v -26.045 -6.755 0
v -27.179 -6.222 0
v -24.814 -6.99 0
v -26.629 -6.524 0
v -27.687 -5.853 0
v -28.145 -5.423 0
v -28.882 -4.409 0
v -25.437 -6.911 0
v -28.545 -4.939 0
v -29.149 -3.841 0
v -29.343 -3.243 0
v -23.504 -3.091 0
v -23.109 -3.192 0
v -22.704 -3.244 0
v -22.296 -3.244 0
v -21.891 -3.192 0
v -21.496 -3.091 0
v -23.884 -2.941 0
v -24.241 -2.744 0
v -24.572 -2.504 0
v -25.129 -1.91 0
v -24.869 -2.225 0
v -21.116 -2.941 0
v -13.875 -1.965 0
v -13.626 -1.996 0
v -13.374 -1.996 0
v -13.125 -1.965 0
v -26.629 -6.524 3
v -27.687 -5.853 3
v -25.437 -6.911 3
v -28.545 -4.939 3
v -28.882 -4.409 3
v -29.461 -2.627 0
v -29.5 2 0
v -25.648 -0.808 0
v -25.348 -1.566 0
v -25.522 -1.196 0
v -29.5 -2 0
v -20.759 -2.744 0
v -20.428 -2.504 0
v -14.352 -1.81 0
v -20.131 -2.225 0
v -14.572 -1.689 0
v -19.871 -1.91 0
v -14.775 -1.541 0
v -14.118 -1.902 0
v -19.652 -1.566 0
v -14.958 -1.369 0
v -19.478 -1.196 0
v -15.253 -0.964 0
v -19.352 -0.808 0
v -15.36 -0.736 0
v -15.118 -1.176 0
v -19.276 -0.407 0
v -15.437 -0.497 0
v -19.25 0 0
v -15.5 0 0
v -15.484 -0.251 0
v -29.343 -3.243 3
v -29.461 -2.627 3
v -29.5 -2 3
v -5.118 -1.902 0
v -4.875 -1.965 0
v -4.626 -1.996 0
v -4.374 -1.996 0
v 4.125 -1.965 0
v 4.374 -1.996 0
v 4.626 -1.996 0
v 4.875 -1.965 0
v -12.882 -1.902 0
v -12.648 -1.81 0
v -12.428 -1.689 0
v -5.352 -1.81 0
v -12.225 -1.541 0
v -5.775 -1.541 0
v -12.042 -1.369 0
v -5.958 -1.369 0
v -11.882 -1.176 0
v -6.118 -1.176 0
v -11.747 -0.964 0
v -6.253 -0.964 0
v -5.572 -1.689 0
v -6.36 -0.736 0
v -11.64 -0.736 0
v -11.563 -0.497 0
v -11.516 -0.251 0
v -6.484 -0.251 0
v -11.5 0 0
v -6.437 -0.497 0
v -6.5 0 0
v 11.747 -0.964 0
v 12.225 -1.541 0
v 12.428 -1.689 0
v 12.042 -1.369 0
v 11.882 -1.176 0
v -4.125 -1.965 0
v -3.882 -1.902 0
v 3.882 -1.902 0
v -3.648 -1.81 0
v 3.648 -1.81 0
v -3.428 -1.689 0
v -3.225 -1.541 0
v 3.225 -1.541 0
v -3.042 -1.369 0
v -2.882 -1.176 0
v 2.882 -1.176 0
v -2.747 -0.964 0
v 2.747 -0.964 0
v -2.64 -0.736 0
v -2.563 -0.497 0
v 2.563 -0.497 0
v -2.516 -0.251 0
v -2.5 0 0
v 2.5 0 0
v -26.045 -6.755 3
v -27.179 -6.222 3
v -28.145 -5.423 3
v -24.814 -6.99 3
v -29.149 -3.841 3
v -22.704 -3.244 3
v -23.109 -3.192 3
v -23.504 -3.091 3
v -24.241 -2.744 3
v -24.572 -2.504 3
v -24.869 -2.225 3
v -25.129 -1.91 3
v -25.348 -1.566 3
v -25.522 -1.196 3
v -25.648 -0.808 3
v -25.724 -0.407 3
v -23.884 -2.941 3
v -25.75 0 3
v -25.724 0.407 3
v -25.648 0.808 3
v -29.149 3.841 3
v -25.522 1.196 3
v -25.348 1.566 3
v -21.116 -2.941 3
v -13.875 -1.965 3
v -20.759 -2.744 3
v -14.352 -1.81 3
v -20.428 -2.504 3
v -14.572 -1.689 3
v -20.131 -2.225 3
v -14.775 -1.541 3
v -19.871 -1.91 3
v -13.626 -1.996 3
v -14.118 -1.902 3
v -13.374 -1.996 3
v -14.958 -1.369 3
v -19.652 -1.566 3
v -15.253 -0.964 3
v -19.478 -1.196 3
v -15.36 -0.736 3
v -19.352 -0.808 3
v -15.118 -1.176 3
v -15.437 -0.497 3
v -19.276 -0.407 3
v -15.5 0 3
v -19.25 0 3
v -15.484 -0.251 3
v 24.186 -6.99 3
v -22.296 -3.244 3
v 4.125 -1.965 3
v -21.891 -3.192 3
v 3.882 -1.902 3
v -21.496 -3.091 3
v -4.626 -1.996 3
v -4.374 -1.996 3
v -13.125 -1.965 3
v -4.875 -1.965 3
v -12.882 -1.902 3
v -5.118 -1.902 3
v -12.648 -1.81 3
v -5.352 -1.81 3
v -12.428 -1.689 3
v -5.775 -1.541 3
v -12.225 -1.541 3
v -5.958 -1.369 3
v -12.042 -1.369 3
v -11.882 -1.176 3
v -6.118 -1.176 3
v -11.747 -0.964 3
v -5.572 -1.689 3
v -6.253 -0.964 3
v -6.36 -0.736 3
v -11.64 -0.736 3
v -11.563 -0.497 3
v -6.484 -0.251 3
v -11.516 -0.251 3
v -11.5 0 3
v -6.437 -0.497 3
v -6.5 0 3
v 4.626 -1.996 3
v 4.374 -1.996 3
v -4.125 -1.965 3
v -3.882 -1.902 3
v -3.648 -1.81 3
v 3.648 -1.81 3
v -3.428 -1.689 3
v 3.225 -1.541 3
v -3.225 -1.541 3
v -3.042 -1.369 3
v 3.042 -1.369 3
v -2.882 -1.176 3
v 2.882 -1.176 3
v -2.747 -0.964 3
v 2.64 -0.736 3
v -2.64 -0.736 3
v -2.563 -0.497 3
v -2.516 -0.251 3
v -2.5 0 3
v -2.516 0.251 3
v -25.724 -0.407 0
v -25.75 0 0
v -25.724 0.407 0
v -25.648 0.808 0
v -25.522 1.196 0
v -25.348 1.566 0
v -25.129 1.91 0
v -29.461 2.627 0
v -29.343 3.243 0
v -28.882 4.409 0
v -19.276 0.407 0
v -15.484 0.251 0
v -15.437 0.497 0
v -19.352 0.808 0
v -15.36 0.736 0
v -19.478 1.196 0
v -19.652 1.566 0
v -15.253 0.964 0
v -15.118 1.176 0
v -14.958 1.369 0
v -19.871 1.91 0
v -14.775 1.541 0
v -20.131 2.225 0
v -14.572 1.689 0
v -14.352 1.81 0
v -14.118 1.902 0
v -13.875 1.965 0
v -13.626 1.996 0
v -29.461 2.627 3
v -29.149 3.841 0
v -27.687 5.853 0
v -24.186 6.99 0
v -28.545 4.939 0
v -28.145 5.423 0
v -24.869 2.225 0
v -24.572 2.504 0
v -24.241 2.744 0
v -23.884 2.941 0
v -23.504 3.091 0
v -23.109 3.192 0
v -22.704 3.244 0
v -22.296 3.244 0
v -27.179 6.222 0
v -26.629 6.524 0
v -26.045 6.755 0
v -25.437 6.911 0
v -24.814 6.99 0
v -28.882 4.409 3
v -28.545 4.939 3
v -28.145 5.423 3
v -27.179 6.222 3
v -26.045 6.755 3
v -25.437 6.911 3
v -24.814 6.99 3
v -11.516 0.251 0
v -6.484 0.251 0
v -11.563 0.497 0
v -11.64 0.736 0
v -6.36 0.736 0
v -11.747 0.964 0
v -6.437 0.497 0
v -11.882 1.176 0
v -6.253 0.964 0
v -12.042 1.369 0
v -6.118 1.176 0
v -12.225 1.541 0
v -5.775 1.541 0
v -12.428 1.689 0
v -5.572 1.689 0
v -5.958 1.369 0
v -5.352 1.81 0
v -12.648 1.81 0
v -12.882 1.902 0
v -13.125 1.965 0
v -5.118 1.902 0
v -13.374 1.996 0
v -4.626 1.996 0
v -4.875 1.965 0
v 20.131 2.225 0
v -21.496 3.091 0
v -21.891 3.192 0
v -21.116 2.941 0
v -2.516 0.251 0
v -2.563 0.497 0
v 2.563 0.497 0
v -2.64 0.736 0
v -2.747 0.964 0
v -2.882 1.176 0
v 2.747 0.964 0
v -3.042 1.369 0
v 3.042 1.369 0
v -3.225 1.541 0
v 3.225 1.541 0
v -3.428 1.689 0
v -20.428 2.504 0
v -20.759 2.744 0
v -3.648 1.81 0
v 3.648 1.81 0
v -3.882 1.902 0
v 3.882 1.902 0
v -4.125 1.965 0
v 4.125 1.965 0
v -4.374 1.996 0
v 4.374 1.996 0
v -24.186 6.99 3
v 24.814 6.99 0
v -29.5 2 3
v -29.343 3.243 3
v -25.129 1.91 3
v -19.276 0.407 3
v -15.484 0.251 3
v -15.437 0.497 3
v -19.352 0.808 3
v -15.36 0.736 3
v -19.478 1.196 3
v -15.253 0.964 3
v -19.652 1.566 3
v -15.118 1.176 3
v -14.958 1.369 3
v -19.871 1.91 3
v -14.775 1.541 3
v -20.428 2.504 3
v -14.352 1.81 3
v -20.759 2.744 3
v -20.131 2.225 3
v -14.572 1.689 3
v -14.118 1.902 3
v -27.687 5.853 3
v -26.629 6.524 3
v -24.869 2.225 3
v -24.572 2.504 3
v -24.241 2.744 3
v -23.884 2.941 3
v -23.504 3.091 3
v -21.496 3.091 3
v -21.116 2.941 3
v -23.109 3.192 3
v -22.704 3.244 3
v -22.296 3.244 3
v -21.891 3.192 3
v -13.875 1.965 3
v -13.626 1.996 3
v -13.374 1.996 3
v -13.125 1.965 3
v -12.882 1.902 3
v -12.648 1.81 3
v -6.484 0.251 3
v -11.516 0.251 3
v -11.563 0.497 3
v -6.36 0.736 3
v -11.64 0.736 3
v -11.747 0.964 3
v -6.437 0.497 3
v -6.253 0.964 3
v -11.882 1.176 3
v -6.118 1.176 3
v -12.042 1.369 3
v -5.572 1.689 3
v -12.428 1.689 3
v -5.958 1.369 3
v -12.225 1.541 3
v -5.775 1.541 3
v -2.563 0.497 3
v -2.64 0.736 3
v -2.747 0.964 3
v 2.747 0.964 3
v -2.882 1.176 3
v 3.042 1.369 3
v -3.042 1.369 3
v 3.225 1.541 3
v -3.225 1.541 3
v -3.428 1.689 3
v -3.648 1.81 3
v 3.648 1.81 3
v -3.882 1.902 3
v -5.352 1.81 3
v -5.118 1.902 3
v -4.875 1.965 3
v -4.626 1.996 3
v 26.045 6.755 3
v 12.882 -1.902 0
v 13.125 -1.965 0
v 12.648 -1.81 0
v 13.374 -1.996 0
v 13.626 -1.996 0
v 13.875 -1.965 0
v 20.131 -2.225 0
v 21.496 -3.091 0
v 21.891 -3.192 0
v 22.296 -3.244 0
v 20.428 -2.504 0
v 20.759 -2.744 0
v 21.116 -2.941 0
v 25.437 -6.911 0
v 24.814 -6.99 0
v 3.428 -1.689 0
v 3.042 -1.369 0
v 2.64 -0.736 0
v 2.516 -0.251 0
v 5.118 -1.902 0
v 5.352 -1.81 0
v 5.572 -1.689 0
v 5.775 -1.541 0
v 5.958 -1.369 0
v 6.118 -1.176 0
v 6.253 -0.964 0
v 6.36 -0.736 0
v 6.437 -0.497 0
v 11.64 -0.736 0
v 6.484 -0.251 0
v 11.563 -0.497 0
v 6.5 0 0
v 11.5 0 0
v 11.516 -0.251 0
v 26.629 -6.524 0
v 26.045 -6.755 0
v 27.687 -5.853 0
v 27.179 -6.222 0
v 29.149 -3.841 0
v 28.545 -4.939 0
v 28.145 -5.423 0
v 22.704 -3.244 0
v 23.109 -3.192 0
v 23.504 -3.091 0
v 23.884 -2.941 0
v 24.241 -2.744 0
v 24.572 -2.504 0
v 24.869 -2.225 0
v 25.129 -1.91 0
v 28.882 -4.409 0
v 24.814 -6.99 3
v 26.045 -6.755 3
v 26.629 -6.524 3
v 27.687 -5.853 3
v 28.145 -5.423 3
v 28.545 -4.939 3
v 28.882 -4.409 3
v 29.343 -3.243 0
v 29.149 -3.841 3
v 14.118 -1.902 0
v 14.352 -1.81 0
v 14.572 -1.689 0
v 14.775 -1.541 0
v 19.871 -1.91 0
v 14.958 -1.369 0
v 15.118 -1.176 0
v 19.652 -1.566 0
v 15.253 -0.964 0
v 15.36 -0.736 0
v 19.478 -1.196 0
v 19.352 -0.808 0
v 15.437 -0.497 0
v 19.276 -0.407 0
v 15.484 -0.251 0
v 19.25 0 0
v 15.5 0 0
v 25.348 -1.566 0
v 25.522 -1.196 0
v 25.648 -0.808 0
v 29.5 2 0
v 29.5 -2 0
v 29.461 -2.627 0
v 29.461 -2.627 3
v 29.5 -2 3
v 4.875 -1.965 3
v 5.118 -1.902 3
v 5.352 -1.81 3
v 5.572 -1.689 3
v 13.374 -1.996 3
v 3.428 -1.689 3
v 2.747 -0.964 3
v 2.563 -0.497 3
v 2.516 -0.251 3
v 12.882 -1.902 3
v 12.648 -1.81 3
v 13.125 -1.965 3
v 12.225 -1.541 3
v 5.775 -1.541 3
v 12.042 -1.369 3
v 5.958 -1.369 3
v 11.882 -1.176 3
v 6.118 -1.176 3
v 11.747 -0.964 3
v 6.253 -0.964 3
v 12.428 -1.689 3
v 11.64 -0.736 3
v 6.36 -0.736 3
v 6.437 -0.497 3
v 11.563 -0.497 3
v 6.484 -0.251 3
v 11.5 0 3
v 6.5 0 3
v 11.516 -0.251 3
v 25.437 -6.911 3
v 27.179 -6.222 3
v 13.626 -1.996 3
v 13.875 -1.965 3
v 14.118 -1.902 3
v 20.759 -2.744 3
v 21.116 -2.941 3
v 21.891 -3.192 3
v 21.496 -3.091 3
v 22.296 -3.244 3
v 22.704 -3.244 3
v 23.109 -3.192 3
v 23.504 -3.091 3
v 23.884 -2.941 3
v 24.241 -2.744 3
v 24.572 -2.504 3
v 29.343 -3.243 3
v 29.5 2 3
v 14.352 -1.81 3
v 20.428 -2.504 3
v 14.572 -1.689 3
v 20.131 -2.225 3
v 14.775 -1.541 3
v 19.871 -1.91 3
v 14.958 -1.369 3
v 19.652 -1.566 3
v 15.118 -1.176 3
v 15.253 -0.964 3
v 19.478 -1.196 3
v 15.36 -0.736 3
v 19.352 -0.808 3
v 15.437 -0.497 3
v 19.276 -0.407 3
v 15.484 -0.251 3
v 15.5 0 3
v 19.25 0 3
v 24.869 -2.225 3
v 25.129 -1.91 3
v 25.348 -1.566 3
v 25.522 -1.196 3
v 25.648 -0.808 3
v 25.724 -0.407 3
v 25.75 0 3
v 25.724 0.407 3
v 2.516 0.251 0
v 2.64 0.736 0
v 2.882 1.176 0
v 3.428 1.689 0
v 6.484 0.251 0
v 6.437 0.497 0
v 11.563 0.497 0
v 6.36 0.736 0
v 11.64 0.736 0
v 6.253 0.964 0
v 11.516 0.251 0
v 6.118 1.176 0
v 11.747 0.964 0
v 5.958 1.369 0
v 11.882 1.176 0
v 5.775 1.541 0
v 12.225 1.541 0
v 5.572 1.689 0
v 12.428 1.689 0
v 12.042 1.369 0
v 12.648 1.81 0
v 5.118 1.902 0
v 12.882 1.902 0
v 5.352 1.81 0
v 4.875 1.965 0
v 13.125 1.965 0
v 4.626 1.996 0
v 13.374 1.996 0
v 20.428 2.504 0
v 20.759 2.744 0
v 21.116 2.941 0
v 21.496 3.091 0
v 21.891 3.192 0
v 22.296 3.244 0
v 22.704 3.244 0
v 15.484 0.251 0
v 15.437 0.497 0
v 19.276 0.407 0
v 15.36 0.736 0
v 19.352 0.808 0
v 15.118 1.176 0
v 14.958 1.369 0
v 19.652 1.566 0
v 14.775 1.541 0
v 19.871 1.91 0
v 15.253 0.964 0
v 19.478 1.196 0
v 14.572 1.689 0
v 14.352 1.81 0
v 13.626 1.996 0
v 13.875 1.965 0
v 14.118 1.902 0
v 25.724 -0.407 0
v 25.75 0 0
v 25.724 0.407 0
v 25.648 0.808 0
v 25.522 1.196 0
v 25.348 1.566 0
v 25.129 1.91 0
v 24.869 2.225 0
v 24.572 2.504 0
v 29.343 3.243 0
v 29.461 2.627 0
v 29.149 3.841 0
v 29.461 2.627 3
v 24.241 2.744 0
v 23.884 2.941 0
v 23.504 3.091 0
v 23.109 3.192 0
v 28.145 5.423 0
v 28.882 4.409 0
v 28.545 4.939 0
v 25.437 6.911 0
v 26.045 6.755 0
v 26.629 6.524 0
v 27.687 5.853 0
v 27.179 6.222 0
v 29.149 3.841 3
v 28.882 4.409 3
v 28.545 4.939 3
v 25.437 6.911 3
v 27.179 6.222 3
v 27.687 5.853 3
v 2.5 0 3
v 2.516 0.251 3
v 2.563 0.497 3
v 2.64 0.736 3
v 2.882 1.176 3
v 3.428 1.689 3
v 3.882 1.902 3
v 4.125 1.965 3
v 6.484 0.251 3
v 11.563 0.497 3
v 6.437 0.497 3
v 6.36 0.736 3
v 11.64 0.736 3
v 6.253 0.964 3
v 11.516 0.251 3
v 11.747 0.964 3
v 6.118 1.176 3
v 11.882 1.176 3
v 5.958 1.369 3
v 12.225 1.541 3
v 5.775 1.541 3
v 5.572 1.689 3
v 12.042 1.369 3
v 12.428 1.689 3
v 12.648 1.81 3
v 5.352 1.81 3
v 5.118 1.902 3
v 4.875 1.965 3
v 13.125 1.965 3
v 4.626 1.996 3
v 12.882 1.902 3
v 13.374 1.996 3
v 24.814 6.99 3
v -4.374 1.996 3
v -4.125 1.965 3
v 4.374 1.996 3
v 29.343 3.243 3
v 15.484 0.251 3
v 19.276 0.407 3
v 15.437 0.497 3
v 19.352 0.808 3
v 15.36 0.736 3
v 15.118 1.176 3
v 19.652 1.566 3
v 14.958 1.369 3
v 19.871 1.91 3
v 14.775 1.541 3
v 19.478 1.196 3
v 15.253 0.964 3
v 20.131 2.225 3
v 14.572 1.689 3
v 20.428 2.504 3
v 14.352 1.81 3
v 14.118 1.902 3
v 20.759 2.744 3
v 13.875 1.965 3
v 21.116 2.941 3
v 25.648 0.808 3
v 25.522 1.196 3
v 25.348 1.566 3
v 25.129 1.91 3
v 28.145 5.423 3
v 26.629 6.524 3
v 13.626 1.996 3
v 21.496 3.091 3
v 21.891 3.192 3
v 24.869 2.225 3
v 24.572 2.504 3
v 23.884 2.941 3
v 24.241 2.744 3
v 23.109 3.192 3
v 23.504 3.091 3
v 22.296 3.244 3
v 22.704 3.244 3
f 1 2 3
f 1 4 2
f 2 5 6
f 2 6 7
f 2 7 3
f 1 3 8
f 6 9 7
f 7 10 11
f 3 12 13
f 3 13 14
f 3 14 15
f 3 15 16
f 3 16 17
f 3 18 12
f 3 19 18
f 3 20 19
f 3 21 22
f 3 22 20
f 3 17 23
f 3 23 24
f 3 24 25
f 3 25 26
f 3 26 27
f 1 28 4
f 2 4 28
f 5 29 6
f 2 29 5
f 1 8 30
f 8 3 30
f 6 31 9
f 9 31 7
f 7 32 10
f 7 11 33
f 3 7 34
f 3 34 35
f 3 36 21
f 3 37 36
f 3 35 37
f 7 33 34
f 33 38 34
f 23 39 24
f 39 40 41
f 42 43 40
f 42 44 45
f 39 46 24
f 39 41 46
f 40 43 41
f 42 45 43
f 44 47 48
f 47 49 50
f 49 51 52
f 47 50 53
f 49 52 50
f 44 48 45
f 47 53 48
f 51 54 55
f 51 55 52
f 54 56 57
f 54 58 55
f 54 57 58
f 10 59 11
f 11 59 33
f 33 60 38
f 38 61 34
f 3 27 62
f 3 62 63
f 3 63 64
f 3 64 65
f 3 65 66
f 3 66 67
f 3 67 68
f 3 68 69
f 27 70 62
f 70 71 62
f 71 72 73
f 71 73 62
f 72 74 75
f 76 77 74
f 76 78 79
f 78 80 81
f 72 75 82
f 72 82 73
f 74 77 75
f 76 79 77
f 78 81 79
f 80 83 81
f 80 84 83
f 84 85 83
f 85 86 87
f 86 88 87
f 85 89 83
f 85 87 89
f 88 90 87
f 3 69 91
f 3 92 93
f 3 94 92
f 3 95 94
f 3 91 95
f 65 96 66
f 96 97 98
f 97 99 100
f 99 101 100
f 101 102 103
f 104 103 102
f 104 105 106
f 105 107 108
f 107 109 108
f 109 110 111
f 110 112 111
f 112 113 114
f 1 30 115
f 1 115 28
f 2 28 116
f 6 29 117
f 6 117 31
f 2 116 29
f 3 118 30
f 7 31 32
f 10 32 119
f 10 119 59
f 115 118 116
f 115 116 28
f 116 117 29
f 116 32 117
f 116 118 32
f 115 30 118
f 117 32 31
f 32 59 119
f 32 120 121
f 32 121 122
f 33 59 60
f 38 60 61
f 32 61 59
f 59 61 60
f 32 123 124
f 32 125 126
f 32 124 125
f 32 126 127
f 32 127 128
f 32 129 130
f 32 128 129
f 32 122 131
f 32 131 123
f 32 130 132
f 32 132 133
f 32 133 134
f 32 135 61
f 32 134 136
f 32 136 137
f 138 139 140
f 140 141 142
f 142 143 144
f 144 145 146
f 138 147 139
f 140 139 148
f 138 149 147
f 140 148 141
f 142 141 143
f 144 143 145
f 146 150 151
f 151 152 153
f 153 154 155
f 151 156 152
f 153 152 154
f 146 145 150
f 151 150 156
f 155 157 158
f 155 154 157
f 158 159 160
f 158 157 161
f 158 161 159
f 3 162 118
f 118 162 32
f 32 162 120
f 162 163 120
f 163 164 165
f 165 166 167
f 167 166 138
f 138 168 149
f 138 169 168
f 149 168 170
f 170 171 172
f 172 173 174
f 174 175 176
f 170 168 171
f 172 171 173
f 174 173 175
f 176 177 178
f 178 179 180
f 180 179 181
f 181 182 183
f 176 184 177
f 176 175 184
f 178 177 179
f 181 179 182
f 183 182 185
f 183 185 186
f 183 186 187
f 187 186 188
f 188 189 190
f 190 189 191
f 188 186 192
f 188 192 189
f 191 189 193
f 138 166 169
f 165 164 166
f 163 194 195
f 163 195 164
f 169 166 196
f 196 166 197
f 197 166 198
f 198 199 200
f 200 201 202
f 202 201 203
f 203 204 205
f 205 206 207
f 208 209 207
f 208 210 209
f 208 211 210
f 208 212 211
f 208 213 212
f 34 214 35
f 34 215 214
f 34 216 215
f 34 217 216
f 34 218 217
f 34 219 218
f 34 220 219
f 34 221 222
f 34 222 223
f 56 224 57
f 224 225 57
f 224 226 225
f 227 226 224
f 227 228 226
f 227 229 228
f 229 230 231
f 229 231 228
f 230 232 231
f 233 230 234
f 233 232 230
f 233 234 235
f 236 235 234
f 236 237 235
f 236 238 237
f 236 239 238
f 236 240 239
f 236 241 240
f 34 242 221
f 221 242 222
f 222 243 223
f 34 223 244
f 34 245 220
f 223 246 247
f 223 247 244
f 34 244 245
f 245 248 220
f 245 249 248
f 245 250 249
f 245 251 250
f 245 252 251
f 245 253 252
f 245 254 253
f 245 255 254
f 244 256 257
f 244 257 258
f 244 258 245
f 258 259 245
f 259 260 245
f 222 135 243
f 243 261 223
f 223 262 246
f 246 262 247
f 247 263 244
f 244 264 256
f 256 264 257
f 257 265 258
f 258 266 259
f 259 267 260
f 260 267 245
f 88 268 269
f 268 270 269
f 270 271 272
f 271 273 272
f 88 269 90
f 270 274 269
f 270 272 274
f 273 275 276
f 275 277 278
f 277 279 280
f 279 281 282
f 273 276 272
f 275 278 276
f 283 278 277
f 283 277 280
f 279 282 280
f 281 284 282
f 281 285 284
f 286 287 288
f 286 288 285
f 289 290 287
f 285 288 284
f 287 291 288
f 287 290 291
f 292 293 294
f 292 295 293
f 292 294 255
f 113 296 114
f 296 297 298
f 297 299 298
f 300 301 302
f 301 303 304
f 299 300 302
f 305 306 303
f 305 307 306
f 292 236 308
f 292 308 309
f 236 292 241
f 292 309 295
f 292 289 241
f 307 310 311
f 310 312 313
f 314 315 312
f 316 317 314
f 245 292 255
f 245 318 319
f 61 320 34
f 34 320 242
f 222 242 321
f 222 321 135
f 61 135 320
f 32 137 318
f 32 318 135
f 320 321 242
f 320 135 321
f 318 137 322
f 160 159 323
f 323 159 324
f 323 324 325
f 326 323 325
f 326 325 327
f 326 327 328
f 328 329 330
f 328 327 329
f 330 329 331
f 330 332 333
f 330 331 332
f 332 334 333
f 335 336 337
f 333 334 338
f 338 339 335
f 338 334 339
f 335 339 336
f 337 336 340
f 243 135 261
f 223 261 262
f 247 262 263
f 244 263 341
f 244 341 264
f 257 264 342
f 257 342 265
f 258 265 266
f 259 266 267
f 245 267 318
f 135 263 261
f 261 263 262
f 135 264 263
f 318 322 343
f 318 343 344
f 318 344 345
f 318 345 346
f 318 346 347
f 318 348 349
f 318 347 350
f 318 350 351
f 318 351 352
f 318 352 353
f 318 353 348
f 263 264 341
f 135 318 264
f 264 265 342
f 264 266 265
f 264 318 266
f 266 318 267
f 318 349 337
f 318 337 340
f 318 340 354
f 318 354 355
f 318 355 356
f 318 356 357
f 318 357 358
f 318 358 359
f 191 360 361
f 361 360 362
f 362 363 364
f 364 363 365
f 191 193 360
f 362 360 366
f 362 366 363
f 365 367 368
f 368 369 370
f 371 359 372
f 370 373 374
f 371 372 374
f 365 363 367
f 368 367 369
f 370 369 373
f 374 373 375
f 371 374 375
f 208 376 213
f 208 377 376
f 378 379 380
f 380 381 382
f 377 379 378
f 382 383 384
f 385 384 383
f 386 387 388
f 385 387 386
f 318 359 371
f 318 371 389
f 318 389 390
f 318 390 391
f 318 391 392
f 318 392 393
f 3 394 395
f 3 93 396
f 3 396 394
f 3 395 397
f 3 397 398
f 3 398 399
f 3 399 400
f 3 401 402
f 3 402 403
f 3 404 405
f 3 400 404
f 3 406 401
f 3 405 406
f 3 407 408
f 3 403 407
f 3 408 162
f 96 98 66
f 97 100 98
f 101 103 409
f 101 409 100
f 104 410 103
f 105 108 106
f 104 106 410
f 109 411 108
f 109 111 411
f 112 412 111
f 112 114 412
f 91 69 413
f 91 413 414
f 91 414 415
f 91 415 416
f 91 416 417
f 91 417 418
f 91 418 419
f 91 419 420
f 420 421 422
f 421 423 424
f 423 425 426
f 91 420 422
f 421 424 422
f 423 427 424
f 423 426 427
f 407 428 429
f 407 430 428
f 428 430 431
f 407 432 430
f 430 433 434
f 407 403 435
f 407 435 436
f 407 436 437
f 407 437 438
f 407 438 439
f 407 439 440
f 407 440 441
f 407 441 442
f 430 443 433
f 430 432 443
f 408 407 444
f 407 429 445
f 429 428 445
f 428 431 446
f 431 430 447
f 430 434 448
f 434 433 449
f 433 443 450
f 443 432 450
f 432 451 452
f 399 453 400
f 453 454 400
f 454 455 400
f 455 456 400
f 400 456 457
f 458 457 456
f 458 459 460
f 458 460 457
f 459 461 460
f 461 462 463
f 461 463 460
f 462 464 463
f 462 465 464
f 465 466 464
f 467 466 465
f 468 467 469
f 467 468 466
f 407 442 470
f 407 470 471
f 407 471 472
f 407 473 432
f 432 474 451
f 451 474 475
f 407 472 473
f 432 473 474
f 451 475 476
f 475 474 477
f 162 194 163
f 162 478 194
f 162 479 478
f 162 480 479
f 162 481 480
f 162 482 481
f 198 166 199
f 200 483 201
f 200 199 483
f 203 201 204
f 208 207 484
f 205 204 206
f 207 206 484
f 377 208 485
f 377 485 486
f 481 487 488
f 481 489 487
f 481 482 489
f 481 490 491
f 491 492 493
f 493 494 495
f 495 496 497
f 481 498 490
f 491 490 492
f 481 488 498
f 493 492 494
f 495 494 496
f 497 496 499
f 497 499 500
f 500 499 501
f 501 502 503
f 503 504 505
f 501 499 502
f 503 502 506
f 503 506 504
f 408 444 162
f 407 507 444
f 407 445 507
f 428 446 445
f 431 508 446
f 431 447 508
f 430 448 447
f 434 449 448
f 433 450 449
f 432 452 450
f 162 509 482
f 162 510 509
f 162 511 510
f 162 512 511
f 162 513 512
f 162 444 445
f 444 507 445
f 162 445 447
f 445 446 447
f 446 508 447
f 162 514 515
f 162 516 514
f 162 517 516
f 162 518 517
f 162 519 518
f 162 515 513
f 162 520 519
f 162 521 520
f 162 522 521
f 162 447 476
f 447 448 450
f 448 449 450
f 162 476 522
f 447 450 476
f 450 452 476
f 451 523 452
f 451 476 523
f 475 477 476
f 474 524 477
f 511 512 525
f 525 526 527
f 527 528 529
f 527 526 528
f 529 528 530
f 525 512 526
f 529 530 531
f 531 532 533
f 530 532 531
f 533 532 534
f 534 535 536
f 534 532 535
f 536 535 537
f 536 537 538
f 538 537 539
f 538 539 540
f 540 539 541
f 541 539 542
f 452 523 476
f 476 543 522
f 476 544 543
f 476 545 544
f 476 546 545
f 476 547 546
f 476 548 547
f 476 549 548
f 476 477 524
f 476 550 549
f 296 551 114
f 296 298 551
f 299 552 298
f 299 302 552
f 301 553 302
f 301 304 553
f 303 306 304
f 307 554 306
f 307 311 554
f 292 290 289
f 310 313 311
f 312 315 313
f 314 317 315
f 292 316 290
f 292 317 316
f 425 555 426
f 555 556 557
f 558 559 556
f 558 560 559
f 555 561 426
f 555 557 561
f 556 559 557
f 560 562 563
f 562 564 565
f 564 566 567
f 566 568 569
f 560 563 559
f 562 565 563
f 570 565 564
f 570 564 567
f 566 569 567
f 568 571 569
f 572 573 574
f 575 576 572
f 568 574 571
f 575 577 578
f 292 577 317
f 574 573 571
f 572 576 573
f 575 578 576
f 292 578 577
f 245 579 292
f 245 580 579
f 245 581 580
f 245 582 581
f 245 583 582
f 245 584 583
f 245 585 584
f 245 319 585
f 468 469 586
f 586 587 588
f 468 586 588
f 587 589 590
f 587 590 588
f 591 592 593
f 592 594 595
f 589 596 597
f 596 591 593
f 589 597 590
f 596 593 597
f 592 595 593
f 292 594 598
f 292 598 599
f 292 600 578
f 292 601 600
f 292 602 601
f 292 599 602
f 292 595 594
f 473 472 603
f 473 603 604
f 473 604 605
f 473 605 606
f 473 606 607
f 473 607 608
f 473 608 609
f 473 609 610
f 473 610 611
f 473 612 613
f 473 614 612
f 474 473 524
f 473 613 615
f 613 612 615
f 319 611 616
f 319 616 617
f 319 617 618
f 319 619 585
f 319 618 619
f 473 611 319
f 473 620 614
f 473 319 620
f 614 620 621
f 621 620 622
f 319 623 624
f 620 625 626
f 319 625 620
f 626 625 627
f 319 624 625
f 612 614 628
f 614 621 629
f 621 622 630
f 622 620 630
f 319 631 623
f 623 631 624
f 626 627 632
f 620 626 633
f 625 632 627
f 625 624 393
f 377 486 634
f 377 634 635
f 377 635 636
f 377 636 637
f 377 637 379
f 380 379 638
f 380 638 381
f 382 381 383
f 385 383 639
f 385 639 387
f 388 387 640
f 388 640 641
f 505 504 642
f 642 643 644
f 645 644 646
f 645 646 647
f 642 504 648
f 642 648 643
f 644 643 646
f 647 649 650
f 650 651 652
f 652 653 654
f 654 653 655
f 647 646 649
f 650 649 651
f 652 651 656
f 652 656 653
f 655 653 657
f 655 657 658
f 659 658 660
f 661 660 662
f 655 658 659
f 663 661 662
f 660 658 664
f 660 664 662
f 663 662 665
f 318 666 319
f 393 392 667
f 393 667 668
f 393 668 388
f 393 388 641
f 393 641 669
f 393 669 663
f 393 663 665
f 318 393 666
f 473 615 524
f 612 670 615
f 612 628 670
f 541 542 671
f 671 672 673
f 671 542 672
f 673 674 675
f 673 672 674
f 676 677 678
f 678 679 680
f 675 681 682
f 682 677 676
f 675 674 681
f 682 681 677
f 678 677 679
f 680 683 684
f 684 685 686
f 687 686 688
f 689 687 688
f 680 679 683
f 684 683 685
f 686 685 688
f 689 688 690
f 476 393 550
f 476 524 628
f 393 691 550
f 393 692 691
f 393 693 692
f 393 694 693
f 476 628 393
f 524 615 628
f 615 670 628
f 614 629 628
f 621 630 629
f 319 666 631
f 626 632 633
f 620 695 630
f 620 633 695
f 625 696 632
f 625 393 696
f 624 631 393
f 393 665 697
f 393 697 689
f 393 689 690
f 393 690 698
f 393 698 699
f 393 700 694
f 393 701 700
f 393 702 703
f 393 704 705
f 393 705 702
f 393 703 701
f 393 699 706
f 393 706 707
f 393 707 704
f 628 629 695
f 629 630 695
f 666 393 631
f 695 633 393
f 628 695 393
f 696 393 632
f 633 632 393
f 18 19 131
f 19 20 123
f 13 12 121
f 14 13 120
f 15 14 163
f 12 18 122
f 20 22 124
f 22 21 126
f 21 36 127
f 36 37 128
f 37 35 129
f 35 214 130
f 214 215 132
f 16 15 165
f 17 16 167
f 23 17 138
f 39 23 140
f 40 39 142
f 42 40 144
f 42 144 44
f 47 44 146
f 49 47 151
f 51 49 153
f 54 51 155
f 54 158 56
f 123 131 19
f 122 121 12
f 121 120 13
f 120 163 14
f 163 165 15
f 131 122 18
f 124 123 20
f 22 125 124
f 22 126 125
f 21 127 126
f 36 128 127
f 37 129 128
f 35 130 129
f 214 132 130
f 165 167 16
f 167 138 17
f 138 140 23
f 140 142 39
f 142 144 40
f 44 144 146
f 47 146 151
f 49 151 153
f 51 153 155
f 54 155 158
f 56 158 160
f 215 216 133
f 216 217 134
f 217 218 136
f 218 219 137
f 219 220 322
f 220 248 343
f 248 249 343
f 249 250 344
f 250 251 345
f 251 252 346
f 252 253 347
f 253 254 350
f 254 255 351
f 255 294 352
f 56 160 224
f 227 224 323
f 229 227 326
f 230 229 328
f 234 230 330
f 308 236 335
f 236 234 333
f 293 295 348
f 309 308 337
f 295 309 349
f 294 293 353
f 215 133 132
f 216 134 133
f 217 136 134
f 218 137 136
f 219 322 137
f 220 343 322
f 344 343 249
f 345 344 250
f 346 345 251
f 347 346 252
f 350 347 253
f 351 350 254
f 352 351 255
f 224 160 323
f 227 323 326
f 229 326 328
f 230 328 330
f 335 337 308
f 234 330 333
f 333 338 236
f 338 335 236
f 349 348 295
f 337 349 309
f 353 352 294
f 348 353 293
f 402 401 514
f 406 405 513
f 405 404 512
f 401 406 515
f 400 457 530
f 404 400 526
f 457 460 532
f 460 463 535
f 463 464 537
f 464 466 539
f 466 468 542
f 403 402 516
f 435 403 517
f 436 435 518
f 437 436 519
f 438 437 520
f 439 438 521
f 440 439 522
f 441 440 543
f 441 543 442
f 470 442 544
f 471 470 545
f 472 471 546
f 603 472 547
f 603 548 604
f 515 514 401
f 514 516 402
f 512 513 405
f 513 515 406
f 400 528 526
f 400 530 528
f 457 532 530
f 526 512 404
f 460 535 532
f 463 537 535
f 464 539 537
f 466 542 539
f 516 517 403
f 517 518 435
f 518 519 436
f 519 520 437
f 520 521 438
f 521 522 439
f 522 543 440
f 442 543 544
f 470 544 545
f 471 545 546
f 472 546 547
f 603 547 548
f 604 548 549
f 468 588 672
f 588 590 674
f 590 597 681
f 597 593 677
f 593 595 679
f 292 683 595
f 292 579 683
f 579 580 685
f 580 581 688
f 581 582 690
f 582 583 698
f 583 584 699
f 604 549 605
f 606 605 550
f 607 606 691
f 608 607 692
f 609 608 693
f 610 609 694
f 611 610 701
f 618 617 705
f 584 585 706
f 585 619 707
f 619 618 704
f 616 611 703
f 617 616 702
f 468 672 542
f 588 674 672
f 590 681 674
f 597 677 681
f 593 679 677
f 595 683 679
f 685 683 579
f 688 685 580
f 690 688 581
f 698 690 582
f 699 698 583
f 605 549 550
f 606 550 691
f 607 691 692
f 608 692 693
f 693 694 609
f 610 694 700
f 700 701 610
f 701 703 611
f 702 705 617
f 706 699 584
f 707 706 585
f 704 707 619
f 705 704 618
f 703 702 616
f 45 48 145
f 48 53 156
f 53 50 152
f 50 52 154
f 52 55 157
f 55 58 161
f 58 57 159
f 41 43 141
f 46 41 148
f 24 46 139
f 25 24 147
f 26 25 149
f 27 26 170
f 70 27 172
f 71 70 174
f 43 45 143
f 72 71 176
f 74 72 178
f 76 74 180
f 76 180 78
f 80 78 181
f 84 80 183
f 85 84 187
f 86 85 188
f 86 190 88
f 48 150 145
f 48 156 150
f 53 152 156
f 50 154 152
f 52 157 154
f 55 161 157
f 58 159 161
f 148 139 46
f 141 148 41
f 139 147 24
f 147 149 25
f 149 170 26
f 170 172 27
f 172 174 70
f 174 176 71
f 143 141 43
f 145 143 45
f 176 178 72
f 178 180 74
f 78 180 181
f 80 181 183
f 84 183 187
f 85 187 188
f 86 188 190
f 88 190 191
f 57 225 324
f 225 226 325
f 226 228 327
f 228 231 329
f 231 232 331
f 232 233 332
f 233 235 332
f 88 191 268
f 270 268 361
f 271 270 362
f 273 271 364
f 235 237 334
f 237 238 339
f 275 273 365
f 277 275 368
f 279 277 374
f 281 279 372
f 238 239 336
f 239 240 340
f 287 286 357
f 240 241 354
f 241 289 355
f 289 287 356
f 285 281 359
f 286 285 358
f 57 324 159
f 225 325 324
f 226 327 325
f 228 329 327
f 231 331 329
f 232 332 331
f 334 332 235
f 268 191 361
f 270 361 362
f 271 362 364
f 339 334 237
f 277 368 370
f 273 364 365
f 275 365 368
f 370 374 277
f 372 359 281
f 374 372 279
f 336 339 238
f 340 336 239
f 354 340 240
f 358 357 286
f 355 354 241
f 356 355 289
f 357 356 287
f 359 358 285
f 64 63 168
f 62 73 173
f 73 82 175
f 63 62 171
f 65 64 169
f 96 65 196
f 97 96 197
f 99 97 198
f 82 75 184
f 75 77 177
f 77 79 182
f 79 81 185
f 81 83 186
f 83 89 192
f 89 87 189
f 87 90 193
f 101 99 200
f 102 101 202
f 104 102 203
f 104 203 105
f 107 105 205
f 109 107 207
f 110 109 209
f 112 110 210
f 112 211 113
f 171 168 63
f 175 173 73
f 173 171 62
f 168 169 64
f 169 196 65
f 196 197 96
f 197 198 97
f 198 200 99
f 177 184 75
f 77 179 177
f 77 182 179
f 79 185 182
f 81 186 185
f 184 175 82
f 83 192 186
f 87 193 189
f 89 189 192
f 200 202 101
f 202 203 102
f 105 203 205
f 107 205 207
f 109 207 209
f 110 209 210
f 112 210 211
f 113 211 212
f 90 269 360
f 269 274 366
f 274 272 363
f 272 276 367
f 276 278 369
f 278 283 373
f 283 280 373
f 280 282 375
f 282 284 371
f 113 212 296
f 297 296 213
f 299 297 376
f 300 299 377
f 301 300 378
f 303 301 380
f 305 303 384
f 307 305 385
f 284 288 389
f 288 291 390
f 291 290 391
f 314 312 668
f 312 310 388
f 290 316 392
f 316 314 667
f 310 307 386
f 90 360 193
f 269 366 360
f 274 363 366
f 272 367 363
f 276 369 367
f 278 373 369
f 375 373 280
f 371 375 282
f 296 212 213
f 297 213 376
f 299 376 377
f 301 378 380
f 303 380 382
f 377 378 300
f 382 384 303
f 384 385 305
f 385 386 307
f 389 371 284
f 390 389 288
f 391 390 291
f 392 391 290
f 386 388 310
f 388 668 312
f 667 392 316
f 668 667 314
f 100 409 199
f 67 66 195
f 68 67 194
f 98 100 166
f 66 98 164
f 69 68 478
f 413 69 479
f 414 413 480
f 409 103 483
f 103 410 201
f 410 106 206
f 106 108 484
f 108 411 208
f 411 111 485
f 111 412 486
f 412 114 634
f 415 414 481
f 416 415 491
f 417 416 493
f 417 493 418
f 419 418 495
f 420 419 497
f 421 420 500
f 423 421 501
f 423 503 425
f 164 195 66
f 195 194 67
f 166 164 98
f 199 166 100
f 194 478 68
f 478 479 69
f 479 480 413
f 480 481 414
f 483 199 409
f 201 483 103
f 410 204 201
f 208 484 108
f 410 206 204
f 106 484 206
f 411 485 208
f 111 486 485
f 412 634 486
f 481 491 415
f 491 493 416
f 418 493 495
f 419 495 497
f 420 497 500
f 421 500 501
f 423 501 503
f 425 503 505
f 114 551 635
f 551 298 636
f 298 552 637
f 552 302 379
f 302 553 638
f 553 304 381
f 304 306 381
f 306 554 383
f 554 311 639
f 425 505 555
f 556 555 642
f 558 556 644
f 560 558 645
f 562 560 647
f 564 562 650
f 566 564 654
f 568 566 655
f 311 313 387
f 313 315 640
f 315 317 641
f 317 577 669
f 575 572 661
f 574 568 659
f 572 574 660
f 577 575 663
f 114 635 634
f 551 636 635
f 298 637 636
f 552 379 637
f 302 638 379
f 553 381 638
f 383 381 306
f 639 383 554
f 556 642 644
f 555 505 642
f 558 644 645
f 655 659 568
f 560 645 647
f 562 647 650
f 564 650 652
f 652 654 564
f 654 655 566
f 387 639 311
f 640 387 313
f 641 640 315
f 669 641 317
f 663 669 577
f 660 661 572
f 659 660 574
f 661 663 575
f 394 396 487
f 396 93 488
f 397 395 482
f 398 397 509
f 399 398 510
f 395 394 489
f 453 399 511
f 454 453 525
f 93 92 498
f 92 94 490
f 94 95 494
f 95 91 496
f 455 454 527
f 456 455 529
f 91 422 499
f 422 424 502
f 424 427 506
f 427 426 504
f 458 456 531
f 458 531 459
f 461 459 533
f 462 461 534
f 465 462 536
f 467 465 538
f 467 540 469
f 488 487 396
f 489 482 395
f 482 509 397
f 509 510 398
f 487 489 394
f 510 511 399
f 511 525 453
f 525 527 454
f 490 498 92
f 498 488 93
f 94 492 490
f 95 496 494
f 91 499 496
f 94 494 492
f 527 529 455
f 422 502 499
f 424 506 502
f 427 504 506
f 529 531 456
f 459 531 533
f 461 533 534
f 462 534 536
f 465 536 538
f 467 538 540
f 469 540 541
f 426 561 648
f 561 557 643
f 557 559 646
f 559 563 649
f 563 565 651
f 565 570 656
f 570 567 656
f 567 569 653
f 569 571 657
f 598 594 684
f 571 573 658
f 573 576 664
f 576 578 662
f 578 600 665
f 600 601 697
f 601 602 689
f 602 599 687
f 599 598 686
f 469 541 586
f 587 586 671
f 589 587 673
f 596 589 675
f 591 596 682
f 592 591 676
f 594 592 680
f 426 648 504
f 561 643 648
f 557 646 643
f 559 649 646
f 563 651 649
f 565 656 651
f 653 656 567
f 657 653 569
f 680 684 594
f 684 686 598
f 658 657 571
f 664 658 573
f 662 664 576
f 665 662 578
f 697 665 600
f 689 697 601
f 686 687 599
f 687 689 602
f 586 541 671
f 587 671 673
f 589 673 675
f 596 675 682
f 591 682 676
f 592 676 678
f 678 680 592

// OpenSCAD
$fn = 50;

difference() {
	union() {
		hull() {
			translate(v = [-24.5, 2.0, 0]) {
				cylinder(h = 3, r = 5);
			}
			translate(v = [24.5, 2.0, 0]) {
				cylinder(h = 3, r = 5);
			}
			translate(v = [-24.5, -2.0, 0]) {
				cylinder(h = 3, r = 5);
			}
			translate(v = [24.5, -2.0, 0]) {
				cylinder(h = 3, r = 5);
			}
		}
	}
	union() {
		translate(v = [-22.5, 0.0, 0]) {
			cylinder(h = 3, r = 3.25);
		}
		translate(v = [22.5, 0.0, 0]) {
			cylinder(h = 3, r = 3.25);
		}
		translate(v = [-13.5, 0, 0.0]) {
			cylinder(h = 3, r = 2.0);
		}
		translate(v = [-4.5, 0, 0.0]) {
			cylinder(h = 3, r = 2.0);
		}
		translate(v = [4.5, 0, 0.0]) {
			cylinder(h = 3, r = 2.0);
		}
		translate(v = [13.5, 0, 0.0]) {
			cylinder(h = 3, r = 2.0);
		}
	}
}
